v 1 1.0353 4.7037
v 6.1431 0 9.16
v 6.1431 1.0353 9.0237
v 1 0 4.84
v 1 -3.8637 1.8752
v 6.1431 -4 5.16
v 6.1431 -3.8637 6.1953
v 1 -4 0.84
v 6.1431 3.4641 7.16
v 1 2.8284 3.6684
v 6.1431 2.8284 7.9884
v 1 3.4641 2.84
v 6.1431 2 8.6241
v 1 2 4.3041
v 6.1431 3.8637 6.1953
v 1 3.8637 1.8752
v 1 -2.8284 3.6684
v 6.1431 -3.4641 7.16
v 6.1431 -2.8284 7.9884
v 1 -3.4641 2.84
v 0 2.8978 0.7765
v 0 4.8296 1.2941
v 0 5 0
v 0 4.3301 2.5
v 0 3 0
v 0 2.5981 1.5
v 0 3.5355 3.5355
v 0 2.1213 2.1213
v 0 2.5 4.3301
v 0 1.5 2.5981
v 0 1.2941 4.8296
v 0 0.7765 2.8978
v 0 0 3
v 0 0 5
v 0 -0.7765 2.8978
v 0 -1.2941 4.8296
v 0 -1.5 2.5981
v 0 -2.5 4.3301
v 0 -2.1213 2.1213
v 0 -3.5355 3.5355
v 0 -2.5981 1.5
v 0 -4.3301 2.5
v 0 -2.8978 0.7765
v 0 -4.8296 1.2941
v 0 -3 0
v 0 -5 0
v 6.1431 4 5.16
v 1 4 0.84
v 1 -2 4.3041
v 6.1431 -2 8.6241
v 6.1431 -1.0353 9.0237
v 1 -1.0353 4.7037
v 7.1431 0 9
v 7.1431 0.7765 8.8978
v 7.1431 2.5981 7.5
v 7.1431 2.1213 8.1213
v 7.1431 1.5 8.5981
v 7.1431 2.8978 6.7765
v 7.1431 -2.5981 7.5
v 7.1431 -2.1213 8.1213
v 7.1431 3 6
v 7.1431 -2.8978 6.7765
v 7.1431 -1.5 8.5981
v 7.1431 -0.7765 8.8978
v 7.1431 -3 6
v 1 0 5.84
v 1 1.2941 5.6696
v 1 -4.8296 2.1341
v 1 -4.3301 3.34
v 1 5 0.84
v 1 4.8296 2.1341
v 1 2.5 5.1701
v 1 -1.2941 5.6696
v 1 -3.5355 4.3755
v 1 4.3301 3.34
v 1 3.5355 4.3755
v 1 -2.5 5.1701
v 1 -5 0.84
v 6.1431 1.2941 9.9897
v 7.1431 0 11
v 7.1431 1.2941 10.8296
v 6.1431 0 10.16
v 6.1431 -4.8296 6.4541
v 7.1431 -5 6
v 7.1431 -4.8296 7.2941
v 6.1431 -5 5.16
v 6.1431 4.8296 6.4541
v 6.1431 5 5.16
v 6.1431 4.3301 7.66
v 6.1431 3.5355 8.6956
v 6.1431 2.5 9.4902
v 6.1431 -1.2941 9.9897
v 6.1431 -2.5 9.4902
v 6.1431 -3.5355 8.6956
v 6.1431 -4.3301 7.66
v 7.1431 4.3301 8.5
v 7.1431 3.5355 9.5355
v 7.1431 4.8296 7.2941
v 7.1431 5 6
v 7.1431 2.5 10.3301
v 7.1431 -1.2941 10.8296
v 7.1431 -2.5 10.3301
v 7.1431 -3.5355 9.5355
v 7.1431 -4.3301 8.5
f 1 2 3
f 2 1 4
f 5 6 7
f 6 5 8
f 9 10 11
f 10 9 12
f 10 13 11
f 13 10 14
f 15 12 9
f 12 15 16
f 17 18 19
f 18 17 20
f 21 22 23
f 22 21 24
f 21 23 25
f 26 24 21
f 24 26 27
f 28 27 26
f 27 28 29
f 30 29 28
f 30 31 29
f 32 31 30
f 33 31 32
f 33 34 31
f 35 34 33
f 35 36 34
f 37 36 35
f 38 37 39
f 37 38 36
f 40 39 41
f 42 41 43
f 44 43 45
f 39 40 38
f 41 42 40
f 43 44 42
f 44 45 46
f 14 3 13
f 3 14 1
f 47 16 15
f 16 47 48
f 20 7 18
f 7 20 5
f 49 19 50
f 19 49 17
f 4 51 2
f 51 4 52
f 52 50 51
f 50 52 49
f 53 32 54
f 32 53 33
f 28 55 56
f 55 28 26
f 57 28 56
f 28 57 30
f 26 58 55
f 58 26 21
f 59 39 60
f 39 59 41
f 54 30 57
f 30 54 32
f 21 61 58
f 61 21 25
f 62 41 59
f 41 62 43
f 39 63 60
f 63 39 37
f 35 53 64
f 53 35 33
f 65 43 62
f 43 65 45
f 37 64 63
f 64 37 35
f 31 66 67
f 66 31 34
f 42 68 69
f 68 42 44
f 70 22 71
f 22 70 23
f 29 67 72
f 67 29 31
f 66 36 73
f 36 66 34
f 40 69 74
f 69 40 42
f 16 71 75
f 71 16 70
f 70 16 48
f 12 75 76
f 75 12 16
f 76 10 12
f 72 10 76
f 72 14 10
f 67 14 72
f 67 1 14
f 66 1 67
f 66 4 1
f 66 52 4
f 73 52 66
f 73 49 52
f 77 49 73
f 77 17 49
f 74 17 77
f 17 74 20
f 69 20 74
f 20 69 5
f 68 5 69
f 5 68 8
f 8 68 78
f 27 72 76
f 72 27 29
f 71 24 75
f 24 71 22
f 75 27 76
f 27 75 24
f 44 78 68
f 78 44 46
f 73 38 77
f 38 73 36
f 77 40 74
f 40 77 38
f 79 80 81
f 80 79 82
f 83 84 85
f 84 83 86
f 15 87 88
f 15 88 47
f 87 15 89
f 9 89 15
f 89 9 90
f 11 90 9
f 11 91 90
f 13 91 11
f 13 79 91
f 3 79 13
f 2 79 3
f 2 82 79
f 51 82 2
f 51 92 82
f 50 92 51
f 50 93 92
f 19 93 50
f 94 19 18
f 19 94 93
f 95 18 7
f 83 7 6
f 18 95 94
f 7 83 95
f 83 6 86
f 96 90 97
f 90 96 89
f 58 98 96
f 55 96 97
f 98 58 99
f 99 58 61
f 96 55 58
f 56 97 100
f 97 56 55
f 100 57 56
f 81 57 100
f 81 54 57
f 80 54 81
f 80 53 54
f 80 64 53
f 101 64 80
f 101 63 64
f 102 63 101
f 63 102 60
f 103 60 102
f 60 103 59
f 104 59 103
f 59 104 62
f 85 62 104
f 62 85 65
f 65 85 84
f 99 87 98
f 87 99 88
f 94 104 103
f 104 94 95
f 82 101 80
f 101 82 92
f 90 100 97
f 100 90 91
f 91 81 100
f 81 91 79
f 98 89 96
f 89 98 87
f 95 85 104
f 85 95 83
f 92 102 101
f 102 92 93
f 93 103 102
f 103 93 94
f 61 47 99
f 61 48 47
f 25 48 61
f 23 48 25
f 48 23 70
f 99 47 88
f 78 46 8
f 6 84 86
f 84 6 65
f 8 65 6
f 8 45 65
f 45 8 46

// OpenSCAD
// file: ../build_environments.scad
// build_environments.scad: modules to build level sections
//

module pool(diameter=10.0, wall_height=2.0, step_width=3.0, connections=[])
{
    difference() {
        union() {
        difference() {
            cylinder(h=0.5,r1=diameter+step_width,r2=diameter+step_width,$fn=48);
            translate([0,0,-0.1])
                cylinder(h=0.7,r1=diameter,r2=diameter,$fn=48);
        }
        difference() {
            cylinder(h=wall_height,r1=diameter+step_width+1.0,r2=diameter+step_width+1.0,$fn=48);
            translate([0,0,-0.1])
                cylinder(h=wall_height+0.2,r1=diameter+step_width,r2=diameter+step_width,$fn=48);
        }
        }
    
        for (c = connections)
        {
            rotate([0,90,0]) {
                angle = atan2(c[1],c[0]);
                rotate([-angle,0,0]) {
                    cylinder(h=diameter+5.0,r1=c[2],r2=c[2],$fn=48);
                }
            }
        }
    }
}

module straight(length=10.0, width=2.0, dy1=0.0, dy2=0.0, dz=0.0)
{
    dims = [0, 0, 0, 0, 0, (dz/length)];
    matrix = [
        [ 1, dims[0], dims[1], 0 ],
        [ dims[2], 1, dims[4], 0 ],
        [ dims[5], dims[3], 1, 0 ],
        [ 0, 0, 0, 1 ]
    ];
    multmatrix(matrix)
    difference() {
        translate([dy1,0,0])
        union() {
            rotate([0,90,0]) {
                difference() {
                    cylinder(h=(length-dy1-dy2),r1=width+1.0,r2=width+1.0,$fn=24);
                    translate([0,0,-0.1])
                        cylinder(h=(length-dy1-dy2+0.2),r1=width,r2=width,$fn=24);
                }
                difference() {
                    cylinder(h=1.0,r1=width+2.0,r2=width+2.0,$fn=24);
                    translate([0,0,-0.1])
                        cylinder(h=1.2,r1=width,r2=width,$fn=24);
                }
                translate([0,0,(length-dy1-dy2)-1.0]) {
                    difference() {
                        cylinder(h=1.0,r1=width+2.0,r2=width+2.0,$fn=24);
                        translate([0,0,-0.1])
                            cylinder(h=1.2,r1=width,r2=width,$fn=24);
                    }
                }
            }
        }
        translate([0,0,-(2*width+4.0)/2])
            cube([3*length,3*length,2*width+4.0],center=true);
    }
}

module curve(p0=[0,0], center=[0,0], dir=1, angle=0.0, width=2.0)
{
    radius = sqrt((p0[0]-center[0])*(p0[0]-center[0]) + (p0[1]-center[1])*(p0[1]-center[1]));
    if (dir == 0) {
        difference() {
            rotate([0,0,-90])
            difference() {
                rotate_extrude(angle = angle, convexity = 10, $fn=32)
                    translate([radius, 0, 0])
                        circle(r = width+1.0,$fn=24);
                rotate([0,0,-1.0])
                    rotate_extrude(angle = angle+2.0, convexity = 10, $fn=32)
                        translate([radius, 0, 0])
                            circle(r = width,$fn=24);
            }
            translate([0,0,-(2*width+4.0)/2])
                cube([5*radius,5*radius,2*width+4.0],center=true);
        }
    }
    else {
        difference() {
            rotate([0,0,90])
            difference() {
                rotate_extrude(angle = -angle, convexity = 10, $fn=32)
                    translate([radius, 0, 0])
                        circle(r = width+1.0,$fn=24);
                rotate([0,0,1.0])
                    rotate_extrude(angle = -angle-2.0, convexity = 10, $fn=32)
                        translate([radius, 0, 0])
                            circle(r = width,$fn=24);
            }
            translate([0,0,-(2*width+4.0)/2])
                cube([5*radius,5*radius,2*width+4.0],center=true);
        }
    }

}

// test pool
//pool(diameter=12.0000, wall_height=3.0000, step_width=3.0000, connections=[[0.0000,-26.0000,2.0000], [23.6074,0.0000,2.0000]]);

// test straight, slope
//straight(length=26.0000, width=2.0000, dy1=11.8322, dy2=6.7082, dz=0.0000);
//straight(length=29.1549, width=12.0000, dy1=0.0000, dy2=0.0000, dz=-15.0000);

// test curve
//curve(p0=[23.6074, 0.0000], center=[23.6074, 5.0000], dir=0, angle=60.1011, width=2.0000);
//curve(p0=[33.6426, 12.4219], center=[37.9771, 9.9295], dir=1, angle=120.4627, width=2.0000);
// main file
use <../build_environments.scad>;
straight(length=7.1431, width=3.0000, dy1=0.0000, dy2=0.0000, dz=6.0000);
